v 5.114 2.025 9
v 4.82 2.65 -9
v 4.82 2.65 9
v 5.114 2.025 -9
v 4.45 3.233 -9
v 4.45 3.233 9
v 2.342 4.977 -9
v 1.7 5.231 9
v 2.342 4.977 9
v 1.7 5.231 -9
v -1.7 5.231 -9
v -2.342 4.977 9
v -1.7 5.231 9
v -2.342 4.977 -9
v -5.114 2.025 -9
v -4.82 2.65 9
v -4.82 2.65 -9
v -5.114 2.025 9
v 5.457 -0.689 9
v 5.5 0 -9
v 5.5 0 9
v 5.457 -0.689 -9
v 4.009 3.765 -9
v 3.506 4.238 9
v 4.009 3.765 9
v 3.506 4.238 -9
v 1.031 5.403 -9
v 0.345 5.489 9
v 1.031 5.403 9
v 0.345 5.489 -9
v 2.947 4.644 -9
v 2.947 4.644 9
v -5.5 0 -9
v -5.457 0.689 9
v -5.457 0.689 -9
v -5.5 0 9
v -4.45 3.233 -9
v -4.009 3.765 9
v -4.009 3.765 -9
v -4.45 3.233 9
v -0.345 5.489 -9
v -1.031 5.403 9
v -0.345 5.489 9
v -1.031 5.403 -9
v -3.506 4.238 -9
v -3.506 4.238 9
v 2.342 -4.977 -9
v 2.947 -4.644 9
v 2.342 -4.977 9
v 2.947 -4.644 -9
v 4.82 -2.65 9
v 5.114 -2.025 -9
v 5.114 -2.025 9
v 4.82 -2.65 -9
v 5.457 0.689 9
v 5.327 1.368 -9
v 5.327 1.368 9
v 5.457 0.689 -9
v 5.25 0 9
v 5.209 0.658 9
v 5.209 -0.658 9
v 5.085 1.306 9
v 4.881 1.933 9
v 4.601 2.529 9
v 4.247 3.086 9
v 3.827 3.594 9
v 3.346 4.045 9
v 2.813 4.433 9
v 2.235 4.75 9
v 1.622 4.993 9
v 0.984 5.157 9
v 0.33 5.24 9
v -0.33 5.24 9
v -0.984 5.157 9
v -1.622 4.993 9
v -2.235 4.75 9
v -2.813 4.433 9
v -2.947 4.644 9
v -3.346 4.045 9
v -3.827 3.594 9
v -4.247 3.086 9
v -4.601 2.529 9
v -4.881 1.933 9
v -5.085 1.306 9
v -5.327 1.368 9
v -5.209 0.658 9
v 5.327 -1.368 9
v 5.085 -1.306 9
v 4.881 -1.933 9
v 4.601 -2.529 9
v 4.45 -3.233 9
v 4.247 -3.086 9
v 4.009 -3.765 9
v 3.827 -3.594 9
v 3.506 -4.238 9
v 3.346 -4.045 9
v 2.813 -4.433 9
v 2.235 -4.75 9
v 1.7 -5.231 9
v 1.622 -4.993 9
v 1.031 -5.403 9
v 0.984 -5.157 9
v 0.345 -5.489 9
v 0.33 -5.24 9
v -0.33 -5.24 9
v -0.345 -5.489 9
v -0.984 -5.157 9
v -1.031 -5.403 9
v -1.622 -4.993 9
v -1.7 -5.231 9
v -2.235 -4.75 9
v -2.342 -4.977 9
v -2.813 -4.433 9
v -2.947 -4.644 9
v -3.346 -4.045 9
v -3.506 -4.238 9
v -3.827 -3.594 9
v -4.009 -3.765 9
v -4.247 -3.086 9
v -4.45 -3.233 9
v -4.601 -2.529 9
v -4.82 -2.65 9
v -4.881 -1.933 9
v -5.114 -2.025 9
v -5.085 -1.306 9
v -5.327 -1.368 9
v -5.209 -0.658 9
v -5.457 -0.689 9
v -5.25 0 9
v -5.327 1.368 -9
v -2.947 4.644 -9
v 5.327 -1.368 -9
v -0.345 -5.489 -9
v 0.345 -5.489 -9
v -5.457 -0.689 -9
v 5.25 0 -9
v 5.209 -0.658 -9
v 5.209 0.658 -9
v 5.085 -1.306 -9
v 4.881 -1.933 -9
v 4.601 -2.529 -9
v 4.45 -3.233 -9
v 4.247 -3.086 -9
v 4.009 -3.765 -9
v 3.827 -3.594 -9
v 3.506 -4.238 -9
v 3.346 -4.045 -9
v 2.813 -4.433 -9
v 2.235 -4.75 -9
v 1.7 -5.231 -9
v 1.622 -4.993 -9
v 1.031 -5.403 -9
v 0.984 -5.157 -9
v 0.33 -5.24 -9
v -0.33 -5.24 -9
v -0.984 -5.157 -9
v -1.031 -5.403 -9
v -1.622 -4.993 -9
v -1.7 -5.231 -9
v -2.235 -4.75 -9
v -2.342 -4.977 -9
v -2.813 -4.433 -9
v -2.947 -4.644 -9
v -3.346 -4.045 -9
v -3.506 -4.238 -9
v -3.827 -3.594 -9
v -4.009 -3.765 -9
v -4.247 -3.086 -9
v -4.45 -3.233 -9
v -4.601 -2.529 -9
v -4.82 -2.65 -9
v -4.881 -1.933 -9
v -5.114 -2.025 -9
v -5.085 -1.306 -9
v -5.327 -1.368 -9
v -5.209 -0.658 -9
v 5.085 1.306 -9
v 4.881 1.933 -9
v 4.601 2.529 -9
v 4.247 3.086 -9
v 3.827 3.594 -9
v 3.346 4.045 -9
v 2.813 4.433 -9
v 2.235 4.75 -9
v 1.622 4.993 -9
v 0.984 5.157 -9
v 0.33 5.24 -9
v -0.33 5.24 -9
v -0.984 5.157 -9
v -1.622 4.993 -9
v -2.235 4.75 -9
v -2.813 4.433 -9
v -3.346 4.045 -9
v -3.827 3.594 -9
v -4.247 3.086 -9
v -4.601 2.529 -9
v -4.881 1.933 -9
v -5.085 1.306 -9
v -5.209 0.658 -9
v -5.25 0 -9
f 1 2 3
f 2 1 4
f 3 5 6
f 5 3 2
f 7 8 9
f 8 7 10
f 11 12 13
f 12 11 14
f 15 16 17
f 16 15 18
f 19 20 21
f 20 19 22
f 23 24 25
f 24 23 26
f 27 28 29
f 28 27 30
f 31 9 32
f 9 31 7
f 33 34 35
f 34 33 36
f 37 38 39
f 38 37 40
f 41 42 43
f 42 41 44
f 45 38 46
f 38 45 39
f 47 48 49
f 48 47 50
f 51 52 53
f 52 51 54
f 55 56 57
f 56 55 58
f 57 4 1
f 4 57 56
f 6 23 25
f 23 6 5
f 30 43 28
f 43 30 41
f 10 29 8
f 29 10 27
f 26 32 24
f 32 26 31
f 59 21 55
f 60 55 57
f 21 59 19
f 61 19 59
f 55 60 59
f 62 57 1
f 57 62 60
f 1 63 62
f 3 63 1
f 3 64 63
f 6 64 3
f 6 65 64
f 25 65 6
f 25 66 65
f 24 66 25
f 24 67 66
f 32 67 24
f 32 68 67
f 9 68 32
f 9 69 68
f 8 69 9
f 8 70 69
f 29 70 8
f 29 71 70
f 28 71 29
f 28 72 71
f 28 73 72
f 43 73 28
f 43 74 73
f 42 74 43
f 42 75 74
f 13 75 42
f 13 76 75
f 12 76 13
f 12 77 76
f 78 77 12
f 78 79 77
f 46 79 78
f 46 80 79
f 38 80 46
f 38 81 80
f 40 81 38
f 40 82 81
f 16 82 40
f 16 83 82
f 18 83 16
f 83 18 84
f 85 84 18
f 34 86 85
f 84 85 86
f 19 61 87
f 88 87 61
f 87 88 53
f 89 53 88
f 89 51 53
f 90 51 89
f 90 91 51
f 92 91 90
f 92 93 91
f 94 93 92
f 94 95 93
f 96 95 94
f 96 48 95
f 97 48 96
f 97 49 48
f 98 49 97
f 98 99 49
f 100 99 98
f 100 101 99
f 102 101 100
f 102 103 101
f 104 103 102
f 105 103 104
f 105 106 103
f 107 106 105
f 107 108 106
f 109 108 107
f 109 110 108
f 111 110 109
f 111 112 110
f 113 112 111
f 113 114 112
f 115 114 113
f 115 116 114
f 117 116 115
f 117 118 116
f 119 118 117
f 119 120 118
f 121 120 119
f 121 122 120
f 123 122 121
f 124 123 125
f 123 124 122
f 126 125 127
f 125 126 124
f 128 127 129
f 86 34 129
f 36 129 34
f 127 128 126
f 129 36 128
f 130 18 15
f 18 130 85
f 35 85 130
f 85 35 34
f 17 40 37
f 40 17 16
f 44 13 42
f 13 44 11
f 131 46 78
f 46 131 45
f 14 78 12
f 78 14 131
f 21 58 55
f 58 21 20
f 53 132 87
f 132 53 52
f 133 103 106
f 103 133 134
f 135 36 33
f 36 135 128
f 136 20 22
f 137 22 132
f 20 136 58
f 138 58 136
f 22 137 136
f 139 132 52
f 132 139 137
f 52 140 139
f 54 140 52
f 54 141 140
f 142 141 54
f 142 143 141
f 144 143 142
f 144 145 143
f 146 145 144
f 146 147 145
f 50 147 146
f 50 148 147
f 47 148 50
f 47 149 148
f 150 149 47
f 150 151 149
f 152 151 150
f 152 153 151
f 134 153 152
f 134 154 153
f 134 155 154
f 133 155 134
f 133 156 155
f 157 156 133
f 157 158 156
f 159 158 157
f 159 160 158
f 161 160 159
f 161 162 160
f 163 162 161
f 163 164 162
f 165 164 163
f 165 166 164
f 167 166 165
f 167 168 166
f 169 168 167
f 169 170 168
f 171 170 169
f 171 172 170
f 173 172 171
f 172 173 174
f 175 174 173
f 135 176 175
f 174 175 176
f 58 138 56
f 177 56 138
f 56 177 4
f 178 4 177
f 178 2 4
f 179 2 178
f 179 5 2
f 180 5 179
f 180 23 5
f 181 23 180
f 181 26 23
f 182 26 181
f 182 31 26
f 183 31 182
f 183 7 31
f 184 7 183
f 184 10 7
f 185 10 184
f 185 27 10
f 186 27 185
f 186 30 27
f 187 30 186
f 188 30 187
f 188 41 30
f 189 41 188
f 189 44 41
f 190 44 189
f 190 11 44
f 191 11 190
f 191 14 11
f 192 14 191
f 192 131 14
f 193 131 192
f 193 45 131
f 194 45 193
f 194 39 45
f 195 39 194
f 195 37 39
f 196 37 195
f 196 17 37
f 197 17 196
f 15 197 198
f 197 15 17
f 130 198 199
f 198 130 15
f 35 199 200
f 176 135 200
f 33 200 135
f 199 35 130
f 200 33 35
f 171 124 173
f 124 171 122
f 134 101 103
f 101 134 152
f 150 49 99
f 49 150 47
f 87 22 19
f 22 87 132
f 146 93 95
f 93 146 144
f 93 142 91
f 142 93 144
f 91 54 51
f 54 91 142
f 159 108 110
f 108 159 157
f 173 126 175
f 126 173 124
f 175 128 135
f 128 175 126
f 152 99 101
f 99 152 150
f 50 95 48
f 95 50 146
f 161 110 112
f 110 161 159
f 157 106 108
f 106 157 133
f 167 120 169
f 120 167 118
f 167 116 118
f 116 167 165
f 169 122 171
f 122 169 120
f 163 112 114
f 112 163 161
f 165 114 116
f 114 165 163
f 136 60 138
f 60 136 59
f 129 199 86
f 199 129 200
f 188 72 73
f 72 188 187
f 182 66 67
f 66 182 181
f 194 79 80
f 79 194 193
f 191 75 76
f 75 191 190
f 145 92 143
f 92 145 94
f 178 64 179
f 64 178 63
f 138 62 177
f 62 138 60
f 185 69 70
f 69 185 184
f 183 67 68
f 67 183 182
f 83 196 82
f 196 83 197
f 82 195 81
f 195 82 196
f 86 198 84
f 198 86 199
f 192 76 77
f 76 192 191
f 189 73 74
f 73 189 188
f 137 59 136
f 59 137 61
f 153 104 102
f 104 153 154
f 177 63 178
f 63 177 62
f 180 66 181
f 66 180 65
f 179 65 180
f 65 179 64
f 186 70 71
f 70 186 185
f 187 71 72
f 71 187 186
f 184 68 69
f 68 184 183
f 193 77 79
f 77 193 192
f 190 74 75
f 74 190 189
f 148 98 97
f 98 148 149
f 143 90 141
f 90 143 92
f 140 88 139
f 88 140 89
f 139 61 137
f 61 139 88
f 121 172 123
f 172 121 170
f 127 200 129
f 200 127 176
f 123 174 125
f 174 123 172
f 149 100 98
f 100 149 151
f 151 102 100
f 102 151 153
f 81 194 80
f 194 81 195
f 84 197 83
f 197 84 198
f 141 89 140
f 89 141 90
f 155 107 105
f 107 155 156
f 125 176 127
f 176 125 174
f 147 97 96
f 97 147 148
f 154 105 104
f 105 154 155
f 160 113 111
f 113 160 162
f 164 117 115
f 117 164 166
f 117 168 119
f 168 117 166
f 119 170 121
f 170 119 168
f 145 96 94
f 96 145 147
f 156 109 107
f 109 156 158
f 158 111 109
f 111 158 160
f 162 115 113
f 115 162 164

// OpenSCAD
$fn = 50;


difference() {
	union() {
		translate(v = [0, 0, -9.0000000000]) {
			cylinder(h = 18, r = 5.5000000000);
		}
	}
	union() {
		translate(v = [0, 0, -100.0000000000]) {
			cylinder(h = 200, r = 5.2500000000);
		}
	}
}
